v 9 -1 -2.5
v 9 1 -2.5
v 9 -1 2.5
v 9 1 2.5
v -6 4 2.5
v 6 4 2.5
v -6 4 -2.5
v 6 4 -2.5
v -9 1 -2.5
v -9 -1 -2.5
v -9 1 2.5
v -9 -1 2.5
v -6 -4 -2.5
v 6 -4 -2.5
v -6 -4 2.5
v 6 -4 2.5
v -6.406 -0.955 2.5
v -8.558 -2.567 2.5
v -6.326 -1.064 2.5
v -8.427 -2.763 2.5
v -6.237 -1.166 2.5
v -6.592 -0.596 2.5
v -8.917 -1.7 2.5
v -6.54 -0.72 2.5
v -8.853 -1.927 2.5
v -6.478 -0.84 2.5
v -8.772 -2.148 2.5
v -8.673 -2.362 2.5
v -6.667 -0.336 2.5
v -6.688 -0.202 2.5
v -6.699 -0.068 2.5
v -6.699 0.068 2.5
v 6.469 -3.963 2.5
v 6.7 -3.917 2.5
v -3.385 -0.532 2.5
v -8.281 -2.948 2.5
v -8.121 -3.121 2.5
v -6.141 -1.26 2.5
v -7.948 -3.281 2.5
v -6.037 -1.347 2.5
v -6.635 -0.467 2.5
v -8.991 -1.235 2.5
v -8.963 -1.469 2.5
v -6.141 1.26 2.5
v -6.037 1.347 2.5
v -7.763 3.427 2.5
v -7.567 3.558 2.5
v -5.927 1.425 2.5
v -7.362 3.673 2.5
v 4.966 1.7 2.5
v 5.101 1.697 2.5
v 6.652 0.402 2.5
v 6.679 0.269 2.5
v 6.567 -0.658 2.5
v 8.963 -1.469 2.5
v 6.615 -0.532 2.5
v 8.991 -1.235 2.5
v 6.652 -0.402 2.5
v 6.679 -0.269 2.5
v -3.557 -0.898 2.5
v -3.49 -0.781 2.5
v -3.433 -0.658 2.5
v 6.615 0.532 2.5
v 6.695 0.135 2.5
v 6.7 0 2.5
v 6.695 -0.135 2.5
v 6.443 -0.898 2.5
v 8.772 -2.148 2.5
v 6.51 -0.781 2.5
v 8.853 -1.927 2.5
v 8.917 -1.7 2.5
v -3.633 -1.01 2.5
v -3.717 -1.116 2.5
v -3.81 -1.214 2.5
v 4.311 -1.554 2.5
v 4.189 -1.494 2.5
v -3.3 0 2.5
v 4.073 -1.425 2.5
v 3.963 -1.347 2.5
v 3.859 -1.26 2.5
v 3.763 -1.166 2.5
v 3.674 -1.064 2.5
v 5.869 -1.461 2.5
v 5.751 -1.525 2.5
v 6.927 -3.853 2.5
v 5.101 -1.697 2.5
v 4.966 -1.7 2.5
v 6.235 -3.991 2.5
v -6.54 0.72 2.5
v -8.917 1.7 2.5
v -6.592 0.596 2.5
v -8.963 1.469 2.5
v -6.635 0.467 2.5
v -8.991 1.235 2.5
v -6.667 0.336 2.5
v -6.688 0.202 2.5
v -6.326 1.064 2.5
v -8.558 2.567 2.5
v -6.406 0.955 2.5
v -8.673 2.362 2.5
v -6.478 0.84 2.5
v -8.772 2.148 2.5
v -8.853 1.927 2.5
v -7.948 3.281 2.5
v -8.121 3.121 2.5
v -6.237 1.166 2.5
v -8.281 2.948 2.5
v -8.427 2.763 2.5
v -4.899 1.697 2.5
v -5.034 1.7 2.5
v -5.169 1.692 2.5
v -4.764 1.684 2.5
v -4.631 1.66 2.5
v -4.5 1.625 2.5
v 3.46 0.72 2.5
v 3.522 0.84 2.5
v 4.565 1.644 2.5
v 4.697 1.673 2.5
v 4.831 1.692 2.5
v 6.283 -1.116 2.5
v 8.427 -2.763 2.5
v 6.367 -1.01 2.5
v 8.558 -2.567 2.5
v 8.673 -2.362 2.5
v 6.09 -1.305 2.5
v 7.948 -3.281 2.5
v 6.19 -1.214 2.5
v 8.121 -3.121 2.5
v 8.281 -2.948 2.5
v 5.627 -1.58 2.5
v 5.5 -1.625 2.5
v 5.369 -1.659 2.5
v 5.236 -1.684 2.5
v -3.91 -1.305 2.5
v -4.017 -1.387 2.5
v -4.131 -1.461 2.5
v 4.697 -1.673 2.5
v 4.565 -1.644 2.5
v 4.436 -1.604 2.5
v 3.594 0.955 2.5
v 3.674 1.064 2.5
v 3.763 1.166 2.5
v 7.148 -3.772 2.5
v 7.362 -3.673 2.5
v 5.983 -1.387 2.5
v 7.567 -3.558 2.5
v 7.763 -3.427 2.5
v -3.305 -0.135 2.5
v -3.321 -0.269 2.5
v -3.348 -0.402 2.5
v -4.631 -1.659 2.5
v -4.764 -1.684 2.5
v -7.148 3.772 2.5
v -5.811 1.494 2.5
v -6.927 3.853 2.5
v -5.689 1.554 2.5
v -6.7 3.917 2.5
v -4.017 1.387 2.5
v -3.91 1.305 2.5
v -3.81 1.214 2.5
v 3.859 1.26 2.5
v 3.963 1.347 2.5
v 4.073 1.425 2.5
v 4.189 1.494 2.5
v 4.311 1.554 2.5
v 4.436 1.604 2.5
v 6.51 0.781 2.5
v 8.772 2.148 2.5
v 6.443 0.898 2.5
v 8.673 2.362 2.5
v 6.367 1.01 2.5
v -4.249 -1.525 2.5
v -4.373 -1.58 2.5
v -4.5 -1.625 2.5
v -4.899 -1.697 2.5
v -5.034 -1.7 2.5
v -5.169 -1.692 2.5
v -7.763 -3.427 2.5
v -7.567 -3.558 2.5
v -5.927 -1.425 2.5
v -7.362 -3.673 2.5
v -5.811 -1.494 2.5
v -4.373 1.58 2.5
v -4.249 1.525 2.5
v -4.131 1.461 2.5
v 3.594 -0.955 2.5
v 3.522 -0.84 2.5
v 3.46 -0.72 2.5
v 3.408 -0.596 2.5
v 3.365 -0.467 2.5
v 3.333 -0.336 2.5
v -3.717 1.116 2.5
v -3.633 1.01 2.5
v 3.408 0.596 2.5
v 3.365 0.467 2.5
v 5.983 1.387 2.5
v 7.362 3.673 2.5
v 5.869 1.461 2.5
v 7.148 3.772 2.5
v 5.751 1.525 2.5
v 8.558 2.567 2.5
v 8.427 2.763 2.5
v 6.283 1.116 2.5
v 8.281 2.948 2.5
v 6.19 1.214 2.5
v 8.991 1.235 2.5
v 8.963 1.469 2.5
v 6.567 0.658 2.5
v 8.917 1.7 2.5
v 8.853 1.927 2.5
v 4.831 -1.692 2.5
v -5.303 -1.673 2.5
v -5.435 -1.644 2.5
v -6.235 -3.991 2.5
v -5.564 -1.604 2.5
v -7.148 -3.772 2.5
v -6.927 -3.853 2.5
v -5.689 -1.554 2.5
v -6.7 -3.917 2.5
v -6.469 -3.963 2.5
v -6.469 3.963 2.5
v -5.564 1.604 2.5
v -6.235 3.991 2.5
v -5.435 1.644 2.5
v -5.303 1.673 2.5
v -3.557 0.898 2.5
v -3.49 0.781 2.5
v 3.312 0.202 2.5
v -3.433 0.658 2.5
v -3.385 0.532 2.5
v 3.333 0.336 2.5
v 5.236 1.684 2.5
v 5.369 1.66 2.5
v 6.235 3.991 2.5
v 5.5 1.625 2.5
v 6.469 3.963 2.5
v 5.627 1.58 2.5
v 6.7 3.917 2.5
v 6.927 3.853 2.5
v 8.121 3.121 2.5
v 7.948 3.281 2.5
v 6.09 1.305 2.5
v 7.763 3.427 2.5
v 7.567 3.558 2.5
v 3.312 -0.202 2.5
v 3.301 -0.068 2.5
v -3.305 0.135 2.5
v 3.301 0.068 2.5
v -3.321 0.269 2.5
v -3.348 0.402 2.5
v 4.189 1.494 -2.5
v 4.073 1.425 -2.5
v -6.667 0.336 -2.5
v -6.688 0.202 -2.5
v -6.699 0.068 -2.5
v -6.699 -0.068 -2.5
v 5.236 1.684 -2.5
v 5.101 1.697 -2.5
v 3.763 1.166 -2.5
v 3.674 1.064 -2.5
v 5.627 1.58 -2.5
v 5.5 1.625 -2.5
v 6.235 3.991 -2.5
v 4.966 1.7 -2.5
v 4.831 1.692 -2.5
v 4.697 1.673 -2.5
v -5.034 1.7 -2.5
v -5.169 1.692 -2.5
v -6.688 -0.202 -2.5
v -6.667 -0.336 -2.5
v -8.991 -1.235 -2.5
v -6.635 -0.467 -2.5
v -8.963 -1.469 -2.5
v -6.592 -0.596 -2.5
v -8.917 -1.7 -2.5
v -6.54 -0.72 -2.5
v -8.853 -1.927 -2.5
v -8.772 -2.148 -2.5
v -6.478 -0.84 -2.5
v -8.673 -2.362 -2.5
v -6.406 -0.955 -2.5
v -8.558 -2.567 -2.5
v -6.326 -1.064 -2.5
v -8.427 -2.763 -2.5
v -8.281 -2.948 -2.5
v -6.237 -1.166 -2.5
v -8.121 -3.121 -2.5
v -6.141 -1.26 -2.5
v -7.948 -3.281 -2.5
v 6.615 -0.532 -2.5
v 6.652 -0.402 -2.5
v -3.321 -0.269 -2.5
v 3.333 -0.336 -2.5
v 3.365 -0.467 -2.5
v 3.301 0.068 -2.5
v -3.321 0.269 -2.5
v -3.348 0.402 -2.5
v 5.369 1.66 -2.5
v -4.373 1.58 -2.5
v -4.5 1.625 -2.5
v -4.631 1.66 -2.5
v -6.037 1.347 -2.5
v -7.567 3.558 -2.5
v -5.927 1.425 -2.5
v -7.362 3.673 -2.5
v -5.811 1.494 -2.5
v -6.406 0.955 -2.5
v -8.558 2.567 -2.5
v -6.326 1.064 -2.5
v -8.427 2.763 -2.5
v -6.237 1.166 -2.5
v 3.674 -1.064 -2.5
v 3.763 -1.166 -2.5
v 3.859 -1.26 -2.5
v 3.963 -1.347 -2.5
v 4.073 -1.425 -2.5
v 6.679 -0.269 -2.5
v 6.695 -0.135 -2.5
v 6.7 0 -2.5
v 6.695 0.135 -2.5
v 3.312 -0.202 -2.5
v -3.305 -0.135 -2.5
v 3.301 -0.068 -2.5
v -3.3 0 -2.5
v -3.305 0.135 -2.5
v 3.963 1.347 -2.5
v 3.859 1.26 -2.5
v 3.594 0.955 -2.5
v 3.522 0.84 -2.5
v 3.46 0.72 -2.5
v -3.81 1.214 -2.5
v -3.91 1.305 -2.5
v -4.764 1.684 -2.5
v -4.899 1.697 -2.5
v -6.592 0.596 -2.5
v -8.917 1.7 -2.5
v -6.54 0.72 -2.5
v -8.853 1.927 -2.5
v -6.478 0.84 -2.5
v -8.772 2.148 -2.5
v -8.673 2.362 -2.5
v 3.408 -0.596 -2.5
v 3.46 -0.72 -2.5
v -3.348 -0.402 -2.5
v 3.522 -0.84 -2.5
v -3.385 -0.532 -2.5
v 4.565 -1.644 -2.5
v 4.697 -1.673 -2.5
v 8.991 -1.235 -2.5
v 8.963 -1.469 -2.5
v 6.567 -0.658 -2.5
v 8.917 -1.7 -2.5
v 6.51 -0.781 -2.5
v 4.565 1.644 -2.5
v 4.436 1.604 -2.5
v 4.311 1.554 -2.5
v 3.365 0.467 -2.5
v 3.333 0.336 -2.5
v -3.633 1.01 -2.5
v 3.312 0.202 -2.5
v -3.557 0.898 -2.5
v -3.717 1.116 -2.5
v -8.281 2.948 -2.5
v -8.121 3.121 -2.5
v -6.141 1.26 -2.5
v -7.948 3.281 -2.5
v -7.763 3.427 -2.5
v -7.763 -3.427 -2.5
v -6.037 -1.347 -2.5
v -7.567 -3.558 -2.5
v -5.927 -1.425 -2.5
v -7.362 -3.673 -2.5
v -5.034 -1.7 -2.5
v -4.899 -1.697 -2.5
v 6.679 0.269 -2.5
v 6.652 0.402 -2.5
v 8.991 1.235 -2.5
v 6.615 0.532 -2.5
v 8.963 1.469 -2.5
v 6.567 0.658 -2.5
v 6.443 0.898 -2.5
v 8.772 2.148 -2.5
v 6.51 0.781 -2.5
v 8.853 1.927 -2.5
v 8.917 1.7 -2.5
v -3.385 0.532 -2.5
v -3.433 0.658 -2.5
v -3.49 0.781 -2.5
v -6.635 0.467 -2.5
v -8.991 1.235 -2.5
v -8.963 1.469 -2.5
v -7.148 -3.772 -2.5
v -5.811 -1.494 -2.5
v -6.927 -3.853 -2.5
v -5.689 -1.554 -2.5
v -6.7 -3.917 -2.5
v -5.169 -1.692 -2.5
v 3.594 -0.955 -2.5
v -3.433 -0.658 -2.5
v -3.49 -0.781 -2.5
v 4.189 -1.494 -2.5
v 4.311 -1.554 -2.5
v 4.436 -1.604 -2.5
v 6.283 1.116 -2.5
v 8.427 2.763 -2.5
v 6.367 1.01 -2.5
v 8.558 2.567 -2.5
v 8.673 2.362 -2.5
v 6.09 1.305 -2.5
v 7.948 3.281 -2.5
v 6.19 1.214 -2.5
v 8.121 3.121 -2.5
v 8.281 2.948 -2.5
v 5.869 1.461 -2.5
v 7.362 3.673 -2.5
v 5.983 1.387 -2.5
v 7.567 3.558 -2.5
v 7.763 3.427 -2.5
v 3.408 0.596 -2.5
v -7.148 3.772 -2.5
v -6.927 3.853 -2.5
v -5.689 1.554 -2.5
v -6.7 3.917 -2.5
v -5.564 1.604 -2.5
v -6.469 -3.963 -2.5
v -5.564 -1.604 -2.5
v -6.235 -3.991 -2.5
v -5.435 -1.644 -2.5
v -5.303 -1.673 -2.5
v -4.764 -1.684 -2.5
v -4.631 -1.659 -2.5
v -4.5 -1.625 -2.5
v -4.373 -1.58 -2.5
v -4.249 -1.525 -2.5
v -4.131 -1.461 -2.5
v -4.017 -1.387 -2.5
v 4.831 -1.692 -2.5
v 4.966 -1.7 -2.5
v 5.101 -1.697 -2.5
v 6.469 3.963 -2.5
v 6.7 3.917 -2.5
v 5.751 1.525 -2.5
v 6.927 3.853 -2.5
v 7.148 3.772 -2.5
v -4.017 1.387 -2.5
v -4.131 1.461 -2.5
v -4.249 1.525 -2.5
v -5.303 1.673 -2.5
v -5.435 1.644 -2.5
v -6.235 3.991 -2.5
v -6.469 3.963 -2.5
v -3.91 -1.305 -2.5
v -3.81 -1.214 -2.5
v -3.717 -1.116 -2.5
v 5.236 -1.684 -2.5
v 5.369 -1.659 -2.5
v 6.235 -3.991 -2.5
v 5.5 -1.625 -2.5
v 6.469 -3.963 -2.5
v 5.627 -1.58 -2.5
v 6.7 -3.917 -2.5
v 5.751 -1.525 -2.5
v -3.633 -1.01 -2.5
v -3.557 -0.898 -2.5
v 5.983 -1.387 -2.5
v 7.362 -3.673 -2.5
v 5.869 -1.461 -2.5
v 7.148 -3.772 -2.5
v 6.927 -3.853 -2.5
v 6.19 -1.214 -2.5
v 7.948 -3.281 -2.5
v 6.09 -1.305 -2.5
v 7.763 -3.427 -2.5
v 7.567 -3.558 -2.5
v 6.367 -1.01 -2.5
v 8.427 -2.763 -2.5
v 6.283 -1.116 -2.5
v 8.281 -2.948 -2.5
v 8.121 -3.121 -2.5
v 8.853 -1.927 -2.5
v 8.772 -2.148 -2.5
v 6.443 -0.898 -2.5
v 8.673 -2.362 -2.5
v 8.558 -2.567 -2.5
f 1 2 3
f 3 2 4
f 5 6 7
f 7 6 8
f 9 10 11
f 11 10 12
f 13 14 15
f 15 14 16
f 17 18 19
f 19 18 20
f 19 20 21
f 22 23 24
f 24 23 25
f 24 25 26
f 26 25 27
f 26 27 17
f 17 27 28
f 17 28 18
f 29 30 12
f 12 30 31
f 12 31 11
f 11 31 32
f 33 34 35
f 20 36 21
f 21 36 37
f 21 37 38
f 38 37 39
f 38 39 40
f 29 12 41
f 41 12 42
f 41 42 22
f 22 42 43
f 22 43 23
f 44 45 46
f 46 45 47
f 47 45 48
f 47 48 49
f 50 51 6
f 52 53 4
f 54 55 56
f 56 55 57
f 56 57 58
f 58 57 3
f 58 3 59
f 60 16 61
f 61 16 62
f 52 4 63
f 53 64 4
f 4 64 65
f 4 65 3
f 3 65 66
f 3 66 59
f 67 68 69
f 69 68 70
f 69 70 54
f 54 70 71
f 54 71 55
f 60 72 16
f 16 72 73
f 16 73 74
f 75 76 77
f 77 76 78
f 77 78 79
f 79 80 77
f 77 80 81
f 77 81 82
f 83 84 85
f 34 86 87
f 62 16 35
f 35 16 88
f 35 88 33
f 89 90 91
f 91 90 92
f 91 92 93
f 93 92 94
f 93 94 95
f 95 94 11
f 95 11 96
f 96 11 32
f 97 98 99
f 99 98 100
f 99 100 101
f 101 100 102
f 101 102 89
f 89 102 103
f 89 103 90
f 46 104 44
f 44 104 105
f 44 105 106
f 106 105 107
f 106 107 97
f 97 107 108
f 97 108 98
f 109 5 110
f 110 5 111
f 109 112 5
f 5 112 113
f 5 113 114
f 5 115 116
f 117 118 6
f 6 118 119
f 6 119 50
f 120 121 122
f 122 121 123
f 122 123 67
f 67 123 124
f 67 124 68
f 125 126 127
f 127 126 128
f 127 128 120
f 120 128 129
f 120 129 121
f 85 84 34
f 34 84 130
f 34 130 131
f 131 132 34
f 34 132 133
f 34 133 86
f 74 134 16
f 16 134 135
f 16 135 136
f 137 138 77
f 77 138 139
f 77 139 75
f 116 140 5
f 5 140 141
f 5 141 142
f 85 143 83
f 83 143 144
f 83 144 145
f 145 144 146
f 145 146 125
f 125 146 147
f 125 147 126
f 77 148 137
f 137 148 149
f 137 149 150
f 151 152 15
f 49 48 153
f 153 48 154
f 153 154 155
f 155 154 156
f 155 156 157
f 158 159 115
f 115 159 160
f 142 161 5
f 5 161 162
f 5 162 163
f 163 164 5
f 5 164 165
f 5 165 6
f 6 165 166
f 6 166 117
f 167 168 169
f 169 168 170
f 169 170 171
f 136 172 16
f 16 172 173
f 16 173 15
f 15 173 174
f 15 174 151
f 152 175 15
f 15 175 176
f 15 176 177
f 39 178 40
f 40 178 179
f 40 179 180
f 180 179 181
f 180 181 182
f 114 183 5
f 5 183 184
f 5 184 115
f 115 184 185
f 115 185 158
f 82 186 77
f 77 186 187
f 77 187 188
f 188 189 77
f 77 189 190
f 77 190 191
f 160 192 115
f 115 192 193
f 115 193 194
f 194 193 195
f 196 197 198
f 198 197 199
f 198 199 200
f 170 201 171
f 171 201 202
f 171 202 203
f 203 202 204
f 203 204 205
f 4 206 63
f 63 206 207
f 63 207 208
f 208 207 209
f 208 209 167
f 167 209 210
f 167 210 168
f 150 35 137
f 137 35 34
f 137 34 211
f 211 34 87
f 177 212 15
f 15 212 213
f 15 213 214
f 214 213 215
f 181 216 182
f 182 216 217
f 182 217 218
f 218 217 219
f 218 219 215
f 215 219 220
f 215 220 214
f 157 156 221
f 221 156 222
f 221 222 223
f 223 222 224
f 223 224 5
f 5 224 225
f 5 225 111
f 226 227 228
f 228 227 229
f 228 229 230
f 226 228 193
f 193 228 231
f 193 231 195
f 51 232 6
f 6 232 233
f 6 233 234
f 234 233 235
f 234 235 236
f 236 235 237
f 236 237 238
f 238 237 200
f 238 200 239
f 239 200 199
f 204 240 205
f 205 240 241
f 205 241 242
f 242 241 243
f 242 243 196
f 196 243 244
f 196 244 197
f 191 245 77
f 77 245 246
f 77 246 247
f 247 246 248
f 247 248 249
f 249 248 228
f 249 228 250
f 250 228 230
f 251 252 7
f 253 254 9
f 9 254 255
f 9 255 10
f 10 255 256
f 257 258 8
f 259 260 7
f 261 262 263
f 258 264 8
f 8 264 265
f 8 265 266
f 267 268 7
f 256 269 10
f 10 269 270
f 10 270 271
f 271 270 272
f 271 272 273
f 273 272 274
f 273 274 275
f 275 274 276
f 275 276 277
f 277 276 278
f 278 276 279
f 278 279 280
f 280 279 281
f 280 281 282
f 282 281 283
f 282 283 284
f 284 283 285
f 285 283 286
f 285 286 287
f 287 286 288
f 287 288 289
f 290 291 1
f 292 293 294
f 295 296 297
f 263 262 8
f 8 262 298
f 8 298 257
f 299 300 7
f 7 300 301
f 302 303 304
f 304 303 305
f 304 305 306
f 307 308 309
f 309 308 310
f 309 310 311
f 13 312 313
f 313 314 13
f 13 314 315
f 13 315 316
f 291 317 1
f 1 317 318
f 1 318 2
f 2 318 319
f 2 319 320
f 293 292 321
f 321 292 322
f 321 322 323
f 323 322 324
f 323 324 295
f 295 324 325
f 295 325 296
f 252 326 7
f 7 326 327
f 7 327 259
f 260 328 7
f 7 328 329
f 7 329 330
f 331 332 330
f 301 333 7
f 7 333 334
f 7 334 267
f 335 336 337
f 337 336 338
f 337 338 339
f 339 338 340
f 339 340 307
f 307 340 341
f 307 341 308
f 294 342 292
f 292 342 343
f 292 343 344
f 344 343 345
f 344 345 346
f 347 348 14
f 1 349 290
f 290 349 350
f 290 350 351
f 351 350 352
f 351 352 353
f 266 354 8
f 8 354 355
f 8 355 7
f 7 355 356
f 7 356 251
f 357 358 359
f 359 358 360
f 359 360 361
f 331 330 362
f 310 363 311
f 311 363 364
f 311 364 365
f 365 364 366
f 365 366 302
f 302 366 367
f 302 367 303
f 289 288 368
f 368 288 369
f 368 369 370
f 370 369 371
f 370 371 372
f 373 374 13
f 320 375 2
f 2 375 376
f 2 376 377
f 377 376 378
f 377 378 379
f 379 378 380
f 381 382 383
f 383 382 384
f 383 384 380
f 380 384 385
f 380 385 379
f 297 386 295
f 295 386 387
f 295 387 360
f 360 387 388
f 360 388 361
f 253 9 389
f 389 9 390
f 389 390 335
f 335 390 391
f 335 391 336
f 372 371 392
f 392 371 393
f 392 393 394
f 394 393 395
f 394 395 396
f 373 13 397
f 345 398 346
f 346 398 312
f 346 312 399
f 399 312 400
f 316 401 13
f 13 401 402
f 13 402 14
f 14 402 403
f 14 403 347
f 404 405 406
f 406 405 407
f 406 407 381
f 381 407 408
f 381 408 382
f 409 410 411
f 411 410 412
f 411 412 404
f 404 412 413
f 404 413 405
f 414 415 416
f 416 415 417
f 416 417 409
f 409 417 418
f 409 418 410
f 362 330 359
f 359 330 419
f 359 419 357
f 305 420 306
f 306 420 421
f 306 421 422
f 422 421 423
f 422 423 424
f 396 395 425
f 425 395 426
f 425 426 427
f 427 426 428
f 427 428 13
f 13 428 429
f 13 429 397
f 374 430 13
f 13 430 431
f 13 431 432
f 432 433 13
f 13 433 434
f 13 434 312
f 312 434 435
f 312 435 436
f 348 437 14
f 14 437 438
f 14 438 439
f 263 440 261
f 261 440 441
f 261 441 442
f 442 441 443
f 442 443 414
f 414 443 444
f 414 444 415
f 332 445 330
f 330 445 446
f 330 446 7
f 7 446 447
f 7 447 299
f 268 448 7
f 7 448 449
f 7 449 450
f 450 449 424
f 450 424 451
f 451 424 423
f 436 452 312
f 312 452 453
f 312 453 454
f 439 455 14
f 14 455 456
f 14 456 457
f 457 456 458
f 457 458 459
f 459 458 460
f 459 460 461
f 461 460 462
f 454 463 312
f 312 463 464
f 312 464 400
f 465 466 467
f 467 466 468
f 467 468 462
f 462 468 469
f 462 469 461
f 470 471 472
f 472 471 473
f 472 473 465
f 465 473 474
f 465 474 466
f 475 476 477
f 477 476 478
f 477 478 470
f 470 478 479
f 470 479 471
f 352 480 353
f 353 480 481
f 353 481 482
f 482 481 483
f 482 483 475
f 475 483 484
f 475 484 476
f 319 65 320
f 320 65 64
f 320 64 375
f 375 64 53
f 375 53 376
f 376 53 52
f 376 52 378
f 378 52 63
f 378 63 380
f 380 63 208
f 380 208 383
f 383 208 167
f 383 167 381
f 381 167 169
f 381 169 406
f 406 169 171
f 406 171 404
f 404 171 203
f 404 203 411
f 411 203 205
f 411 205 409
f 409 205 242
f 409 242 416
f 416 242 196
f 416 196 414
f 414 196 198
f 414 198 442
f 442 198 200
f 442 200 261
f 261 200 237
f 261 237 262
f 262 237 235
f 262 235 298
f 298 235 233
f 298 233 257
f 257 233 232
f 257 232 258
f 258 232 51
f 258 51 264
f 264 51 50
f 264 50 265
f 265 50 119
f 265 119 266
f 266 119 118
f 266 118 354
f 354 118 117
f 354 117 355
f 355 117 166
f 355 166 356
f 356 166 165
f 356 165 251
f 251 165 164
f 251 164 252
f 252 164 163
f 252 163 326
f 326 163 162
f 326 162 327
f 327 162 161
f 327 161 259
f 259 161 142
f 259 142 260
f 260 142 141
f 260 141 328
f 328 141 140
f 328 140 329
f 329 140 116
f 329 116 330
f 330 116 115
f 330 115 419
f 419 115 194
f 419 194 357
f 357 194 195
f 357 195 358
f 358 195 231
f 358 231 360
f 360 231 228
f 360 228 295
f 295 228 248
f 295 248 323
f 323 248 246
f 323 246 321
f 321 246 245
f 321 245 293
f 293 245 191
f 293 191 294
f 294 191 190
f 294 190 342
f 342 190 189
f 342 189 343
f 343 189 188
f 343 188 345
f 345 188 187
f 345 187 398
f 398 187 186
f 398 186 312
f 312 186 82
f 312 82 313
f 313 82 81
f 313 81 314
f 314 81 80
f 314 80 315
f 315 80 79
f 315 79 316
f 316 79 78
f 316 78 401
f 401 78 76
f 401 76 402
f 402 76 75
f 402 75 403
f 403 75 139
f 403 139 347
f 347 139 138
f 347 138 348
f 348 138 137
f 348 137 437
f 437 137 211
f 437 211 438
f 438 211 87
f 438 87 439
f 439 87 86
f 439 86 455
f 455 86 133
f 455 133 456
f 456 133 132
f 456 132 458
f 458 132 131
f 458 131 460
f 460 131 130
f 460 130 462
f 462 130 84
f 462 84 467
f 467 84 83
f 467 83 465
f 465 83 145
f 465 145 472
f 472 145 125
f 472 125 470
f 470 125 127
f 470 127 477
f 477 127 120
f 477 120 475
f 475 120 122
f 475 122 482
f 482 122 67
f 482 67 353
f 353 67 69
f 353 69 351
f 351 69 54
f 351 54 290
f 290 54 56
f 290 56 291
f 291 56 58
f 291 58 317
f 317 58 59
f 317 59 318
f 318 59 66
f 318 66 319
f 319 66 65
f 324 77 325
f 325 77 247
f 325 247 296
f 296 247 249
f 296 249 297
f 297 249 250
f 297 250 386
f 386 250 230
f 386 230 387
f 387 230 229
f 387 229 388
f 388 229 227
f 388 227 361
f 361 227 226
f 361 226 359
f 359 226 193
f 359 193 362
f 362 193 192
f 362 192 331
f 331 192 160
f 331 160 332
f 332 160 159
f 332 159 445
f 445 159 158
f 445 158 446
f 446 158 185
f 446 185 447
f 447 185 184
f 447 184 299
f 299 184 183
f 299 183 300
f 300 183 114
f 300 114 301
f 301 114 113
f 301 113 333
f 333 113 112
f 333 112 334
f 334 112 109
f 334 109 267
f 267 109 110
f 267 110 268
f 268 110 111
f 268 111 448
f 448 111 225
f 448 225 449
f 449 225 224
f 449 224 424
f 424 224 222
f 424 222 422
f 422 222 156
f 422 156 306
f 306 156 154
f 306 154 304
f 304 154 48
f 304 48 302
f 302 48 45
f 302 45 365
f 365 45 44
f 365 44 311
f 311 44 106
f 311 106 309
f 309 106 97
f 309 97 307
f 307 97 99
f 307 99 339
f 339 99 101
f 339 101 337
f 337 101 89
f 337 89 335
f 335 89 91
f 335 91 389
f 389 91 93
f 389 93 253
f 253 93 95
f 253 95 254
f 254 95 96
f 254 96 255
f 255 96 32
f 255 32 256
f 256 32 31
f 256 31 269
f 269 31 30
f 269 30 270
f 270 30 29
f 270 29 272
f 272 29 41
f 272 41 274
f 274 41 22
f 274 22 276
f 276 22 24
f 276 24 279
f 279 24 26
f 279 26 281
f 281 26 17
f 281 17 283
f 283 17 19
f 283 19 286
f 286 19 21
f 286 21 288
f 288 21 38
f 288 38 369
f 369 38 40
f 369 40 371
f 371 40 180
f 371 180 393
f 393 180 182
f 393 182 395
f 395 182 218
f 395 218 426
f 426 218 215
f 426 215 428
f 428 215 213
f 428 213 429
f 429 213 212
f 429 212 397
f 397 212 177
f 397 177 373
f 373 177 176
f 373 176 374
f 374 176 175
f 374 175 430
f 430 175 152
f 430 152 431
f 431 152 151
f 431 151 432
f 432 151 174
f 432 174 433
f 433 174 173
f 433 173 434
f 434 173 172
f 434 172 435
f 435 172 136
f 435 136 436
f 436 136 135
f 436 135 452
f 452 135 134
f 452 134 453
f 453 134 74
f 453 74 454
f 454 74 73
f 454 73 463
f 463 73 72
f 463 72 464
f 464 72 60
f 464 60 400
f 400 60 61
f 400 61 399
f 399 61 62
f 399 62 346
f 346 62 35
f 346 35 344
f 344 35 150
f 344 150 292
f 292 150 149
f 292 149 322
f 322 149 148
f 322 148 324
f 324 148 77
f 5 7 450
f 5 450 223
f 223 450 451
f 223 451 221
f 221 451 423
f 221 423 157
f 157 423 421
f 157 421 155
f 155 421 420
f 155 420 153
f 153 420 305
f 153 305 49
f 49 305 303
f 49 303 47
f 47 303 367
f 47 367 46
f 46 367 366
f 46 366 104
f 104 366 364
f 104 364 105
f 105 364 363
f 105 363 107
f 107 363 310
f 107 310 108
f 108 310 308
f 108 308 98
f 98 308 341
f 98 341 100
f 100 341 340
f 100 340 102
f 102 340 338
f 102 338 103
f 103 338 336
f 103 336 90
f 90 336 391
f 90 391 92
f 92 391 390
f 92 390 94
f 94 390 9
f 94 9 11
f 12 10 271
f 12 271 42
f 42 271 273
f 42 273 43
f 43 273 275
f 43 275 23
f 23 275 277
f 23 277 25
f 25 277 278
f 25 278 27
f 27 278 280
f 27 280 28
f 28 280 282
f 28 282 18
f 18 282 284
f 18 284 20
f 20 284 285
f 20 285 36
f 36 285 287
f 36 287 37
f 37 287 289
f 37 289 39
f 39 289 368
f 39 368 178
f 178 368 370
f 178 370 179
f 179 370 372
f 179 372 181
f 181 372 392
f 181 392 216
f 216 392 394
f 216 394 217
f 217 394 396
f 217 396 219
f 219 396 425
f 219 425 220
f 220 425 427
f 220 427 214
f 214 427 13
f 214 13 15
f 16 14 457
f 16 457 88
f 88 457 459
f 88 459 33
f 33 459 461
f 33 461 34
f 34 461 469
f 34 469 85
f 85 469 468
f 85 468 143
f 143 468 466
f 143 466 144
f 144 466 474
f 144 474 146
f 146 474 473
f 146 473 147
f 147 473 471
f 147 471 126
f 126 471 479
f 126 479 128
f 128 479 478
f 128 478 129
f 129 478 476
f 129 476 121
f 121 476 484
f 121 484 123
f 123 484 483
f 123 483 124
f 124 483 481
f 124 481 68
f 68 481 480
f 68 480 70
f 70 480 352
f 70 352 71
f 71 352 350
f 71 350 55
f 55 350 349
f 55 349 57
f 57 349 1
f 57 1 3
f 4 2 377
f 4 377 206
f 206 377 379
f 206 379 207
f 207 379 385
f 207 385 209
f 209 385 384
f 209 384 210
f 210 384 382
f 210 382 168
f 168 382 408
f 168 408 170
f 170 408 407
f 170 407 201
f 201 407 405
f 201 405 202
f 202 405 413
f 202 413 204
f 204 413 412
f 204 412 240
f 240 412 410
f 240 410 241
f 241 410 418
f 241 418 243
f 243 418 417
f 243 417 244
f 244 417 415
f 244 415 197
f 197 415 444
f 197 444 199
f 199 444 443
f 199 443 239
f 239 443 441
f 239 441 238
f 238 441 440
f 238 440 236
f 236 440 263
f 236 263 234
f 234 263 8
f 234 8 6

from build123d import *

# Parameters (mm, degrees)
SKETCH1_W            = 18
SKETCH1_H            = 8
BOSS_EXTRUDE1_DEPTH  = 2.5
M3_CLEARANCE_HOLE1_D = 3.4
FILLET1_R            = 3


with BuildPart() as part:
    # Sketch1 → Boss-Extrude1 (new body, symmetric)
    with BuildSketch(Plane.XY):
        Rectangle(SKETCH1_W, SKETCH1_H)
    extrude(amount=BOSS_EXTRUDE1_DEPTH, both=True)

    # M3 Clearance Hole1 (through all)
    with Locations(Plane.XY.offset(2.5)):
        with Locations((-5, 0), (5, 0)):
            Hole(M3_CLEARANCE_HOLE1_D / 2)

    # Fillet1
    fillet1_edges = [part.edges().sort_by_distance(p)[0] for p in [
        (9, -4, 0),
        (-9, -4, 0),
        (-9, 4, 0),
        (9, 4, 0),
    ]]
    fillet(fillet1_edges, radius=FILLET1_R)


solid = part.part
